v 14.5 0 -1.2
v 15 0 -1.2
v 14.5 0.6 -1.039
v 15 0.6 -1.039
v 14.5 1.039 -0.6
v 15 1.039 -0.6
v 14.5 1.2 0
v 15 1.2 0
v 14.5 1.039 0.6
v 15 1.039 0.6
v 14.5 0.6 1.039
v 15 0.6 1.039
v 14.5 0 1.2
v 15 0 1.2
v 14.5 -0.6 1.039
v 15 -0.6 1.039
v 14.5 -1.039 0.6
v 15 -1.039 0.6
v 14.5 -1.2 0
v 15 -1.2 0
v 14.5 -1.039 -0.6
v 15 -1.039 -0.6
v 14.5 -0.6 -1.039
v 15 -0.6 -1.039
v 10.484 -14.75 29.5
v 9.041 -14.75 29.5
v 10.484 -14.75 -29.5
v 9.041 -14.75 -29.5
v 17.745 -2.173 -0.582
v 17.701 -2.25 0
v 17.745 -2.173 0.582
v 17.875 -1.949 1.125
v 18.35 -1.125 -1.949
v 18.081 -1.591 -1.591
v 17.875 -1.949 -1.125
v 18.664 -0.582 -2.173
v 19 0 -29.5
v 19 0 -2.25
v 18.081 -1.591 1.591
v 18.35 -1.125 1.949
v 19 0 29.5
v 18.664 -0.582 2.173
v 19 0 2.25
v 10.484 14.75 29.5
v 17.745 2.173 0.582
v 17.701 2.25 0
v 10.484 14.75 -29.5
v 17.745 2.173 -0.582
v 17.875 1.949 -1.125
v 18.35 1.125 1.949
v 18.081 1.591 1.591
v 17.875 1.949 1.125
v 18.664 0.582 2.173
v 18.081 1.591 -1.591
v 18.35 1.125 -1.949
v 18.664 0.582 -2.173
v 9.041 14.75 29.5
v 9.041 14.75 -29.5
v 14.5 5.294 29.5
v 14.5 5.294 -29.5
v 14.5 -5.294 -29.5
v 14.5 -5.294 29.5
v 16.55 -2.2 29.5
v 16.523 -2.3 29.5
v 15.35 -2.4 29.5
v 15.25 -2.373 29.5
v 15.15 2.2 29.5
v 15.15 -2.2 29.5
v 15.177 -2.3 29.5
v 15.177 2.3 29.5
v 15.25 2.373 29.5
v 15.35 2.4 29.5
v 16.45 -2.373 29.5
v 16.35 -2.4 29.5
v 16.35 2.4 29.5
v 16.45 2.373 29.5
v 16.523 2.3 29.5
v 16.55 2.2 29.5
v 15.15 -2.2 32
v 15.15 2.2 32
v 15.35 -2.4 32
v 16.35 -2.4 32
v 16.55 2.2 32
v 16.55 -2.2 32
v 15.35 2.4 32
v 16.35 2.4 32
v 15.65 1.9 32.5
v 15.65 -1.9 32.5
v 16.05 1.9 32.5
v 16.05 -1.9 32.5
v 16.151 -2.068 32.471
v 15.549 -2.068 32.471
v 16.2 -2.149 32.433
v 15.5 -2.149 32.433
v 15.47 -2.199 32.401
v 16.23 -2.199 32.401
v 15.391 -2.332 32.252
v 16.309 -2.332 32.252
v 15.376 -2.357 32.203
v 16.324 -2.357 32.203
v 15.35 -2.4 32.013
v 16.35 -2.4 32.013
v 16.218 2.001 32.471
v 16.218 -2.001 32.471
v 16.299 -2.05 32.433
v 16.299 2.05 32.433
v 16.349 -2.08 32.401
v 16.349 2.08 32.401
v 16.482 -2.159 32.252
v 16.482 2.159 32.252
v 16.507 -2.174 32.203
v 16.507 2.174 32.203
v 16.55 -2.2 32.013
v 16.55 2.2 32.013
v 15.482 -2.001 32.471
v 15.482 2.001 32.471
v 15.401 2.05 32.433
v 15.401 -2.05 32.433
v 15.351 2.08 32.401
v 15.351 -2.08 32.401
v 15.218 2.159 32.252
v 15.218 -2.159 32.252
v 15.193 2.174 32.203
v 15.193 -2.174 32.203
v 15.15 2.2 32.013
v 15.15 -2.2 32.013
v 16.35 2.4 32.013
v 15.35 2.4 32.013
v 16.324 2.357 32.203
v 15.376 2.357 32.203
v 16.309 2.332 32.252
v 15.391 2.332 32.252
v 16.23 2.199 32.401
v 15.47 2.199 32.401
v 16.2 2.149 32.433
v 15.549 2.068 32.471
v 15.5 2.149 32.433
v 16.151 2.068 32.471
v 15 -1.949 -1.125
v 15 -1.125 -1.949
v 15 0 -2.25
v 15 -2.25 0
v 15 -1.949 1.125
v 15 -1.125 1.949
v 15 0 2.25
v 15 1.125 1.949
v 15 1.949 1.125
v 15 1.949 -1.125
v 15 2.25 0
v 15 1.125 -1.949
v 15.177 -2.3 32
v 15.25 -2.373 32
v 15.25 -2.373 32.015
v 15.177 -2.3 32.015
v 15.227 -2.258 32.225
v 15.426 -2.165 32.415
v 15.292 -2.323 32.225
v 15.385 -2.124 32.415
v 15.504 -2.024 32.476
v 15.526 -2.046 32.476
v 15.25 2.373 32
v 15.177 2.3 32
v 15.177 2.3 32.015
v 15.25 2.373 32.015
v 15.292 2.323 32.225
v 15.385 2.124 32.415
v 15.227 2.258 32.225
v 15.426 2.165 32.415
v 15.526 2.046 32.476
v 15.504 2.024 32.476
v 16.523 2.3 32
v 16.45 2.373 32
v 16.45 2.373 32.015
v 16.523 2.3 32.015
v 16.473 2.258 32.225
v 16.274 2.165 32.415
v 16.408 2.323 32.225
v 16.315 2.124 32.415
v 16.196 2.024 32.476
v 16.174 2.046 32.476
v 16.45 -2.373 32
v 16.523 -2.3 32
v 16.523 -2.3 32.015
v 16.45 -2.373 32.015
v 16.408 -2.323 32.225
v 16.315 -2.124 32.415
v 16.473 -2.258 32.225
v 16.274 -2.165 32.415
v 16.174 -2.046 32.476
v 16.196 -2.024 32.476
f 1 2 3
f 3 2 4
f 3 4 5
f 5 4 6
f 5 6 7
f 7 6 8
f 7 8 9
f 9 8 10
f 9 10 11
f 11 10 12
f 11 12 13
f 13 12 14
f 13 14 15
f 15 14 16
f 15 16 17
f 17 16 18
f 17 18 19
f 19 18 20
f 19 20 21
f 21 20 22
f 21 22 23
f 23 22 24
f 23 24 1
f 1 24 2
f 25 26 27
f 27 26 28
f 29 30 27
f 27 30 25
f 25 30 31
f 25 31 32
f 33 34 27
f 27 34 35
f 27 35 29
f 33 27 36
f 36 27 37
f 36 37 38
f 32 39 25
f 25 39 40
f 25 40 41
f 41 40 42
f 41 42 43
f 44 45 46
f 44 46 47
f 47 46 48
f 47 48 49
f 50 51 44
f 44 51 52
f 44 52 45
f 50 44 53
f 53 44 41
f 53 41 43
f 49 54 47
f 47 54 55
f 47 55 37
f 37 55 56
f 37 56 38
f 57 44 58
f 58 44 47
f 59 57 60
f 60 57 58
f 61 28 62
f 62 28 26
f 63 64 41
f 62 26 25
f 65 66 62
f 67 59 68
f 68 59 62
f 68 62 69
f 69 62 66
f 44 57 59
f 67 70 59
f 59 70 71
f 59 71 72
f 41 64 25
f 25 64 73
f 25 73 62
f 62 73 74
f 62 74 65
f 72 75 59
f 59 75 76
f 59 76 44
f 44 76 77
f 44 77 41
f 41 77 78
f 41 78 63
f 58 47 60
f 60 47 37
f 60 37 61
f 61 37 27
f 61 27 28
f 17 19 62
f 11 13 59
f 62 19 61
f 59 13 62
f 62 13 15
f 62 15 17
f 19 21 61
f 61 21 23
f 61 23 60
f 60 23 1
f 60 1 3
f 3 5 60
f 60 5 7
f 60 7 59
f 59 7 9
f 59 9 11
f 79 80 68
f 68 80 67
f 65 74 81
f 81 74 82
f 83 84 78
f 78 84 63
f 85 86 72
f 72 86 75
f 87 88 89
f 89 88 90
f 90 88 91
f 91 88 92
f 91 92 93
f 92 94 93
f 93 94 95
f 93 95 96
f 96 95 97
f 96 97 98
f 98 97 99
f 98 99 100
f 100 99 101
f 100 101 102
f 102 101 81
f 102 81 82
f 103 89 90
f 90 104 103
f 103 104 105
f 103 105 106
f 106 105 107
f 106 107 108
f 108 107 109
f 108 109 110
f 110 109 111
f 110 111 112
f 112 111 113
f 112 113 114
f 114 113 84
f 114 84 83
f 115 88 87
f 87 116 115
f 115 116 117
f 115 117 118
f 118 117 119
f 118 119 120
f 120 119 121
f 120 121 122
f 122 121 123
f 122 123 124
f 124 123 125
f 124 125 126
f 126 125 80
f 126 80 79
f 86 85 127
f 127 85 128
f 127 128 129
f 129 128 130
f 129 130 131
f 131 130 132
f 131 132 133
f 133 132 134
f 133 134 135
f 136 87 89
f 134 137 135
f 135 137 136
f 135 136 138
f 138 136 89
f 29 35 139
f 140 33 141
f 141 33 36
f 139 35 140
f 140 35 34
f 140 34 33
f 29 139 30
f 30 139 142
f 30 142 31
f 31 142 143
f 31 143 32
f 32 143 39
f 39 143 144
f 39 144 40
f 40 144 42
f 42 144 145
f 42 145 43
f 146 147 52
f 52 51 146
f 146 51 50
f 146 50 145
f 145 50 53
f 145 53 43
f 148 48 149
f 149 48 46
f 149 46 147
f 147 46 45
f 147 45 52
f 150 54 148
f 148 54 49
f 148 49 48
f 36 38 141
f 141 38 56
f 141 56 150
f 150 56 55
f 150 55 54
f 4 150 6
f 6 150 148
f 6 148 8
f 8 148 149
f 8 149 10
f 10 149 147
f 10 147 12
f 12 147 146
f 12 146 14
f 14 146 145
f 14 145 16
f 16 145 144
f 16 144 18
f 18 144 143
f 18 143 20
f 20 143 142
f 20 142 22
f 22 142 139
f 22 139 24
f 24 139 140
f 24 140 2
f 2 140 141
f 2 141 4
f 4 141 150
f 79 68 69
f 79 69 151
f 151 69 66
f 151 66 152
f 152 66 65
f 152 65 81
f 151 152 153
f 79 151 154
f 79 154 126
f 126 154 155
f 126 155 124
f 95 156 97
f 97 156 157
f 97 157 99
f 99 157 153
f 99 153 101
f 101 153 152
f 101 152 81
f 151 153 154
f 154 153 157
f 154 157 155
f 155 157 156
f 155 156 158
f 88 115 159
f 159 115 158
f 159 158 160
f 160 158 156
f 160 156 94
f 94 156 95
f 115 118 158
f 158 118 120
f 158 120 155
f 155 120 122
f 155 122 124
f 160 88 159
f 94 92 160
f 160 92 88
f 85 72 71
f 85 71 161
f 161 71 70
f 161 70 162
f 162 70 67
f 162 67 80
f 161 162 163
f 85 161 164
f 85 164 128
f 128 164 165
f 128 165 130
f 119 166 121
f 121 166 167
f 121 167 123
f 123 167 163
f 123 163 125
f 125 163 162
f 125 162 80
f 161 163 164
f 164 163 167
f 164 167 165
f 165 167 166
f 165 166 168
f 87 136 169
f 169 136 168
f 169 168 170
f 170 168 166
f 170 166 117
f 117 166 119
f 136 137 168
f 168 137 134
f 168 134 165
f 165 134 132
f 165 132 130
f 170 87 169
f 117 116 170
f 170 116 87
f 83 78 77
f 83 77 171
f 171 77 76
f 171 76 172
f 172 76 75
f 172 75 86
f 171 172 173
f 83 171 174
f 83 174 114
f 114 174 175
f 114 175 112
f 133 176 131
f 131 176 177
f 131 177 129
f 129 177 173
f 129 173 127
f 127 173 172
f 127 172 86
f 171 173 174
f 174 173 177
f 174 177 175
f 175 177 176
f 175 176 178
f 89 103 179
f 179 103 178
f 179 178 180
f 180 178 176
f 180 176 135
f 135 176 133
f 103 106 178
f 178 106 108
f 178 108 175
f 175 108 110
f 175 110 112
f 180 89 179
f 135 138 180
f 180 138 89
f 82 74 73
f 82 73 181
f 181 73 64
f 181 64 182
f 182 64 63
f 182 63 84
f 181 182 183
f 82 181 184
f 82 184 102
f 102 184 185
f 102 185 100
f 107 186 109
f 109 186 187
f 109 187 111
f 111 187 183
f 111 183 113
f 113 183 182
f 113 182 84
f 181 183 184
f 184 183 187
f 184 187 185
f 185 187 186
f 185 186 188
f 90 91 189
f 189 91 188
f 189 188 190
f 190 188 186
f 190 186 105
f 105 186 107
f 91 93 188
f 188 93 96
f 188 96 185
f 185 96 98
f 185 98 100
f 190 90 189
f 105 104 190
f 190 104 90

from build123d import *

# Parameters (mm, degrees)
BOSS_EXTRUDE1_DEPTH = 29.5
BOSS_EXTRUDE2_DEPTH = 59
SKETCH3_W           = 1.4
SKETCH3_H           = 4.8
BOSS_EXTRUDE3_DEPTH = 3
FILLET1_R           = 0.5
SKETCH5_R           = 1.2
CUT_EXTRUDE1_DEPTH  = 13
SKETCH6_R           = 2.25
CUT_EXTRUDE2_DEPTH  = 5
FILLET2_R           = 0.2


with BuildPart() as part:
    # Sketch1 → Boss-Extrude1 (new body, symmetric)
    with BuildSketch(Plane.XY):
        Polygon((17.556624327, 0), (9.040707856, 14.75), (10.484083529, 14.75), (19, 0), (10.484083529, -14.75), (9.040707856, -14.75), align=None)
    extrude(amount=BOSS_EXTRUDE1_DEPTH, both=True)

    # Sketch2 → Boss-Extrude2 (add)
    with BuildSketch(Plane.XY.offset(29.5)):
        Polygon((17.556624327, 0), (14.5, 5.294228634), (14.5, -5.294228634), align=None)
    extrude(amount=-BOSS_EXTRUDE2_DEPTH)

    # Sketch3 → Boss-Extrude3 (add)
    with BuildSketch(Plane.XY.offset(29.5)):
        with Locations((15.85, 0)):
            Rectangle(SKETCH3_W, SKETCH3_H)
    extrude(amount=BOSS_EXTRUDE3_DEPTH)

    # Fillet1
    fillet1_edges = [part.edges().sort_by_distance(p)[0] for p in [
        (15.15, 0, 32.5),
        (15.85, -2.4, 32.5),
        (16.55, 0, 32.5),
        (15.85, 2.4, 32.5),
    ]]
    fillet(fillet1_edges, radius=FILLET1_R)

    # Sketch5 → Cut-Extrude1 (cut)
    with BuildSketch(Plane(origin=(20, 0, 0), x_dir=(0, 0, -1), z_dir=(1, 0, 0))):
        Circle(SKETCH5_R)
    extrude(amount=-CUT_EXTRUDE1_DEPTH, mode=Mode.SUBTRACT)

    # Sketch6 → Cut-Extrude2 (cut)
    with BuildSketch(Plane(origin=(20, 0, 0), x_dir=(0, 0, -1), z_dir=(1, 0, 0))):
        Circle(SKETCH6_R)
    extrude(amount=-CUT_EXTRUDE2_DEPTH, mode=Mode.SUBTRACT)

    # Fillet2
    fillet2_edges = [part.edges().sort_by_distance(p)[0] for p in [
        (15.15, 2.4, 30.75),
        (16.55, 2.4, 30.75),
        (16.55, -2.4, 30.75),
        (15.15, -2.4, 30.75),
        (16.373024454, -2.223024454, 32.381648008),
        (15.326975546, -2.223024454, 32.381648008),
        (16.373024454, 2.223024454, 32.381648008),
        (15.326975546, 2.223024454, 32.381648008),
    ]]
    fillet(fillet2_edges, radius=FILLET2_R)


solid = part.part
